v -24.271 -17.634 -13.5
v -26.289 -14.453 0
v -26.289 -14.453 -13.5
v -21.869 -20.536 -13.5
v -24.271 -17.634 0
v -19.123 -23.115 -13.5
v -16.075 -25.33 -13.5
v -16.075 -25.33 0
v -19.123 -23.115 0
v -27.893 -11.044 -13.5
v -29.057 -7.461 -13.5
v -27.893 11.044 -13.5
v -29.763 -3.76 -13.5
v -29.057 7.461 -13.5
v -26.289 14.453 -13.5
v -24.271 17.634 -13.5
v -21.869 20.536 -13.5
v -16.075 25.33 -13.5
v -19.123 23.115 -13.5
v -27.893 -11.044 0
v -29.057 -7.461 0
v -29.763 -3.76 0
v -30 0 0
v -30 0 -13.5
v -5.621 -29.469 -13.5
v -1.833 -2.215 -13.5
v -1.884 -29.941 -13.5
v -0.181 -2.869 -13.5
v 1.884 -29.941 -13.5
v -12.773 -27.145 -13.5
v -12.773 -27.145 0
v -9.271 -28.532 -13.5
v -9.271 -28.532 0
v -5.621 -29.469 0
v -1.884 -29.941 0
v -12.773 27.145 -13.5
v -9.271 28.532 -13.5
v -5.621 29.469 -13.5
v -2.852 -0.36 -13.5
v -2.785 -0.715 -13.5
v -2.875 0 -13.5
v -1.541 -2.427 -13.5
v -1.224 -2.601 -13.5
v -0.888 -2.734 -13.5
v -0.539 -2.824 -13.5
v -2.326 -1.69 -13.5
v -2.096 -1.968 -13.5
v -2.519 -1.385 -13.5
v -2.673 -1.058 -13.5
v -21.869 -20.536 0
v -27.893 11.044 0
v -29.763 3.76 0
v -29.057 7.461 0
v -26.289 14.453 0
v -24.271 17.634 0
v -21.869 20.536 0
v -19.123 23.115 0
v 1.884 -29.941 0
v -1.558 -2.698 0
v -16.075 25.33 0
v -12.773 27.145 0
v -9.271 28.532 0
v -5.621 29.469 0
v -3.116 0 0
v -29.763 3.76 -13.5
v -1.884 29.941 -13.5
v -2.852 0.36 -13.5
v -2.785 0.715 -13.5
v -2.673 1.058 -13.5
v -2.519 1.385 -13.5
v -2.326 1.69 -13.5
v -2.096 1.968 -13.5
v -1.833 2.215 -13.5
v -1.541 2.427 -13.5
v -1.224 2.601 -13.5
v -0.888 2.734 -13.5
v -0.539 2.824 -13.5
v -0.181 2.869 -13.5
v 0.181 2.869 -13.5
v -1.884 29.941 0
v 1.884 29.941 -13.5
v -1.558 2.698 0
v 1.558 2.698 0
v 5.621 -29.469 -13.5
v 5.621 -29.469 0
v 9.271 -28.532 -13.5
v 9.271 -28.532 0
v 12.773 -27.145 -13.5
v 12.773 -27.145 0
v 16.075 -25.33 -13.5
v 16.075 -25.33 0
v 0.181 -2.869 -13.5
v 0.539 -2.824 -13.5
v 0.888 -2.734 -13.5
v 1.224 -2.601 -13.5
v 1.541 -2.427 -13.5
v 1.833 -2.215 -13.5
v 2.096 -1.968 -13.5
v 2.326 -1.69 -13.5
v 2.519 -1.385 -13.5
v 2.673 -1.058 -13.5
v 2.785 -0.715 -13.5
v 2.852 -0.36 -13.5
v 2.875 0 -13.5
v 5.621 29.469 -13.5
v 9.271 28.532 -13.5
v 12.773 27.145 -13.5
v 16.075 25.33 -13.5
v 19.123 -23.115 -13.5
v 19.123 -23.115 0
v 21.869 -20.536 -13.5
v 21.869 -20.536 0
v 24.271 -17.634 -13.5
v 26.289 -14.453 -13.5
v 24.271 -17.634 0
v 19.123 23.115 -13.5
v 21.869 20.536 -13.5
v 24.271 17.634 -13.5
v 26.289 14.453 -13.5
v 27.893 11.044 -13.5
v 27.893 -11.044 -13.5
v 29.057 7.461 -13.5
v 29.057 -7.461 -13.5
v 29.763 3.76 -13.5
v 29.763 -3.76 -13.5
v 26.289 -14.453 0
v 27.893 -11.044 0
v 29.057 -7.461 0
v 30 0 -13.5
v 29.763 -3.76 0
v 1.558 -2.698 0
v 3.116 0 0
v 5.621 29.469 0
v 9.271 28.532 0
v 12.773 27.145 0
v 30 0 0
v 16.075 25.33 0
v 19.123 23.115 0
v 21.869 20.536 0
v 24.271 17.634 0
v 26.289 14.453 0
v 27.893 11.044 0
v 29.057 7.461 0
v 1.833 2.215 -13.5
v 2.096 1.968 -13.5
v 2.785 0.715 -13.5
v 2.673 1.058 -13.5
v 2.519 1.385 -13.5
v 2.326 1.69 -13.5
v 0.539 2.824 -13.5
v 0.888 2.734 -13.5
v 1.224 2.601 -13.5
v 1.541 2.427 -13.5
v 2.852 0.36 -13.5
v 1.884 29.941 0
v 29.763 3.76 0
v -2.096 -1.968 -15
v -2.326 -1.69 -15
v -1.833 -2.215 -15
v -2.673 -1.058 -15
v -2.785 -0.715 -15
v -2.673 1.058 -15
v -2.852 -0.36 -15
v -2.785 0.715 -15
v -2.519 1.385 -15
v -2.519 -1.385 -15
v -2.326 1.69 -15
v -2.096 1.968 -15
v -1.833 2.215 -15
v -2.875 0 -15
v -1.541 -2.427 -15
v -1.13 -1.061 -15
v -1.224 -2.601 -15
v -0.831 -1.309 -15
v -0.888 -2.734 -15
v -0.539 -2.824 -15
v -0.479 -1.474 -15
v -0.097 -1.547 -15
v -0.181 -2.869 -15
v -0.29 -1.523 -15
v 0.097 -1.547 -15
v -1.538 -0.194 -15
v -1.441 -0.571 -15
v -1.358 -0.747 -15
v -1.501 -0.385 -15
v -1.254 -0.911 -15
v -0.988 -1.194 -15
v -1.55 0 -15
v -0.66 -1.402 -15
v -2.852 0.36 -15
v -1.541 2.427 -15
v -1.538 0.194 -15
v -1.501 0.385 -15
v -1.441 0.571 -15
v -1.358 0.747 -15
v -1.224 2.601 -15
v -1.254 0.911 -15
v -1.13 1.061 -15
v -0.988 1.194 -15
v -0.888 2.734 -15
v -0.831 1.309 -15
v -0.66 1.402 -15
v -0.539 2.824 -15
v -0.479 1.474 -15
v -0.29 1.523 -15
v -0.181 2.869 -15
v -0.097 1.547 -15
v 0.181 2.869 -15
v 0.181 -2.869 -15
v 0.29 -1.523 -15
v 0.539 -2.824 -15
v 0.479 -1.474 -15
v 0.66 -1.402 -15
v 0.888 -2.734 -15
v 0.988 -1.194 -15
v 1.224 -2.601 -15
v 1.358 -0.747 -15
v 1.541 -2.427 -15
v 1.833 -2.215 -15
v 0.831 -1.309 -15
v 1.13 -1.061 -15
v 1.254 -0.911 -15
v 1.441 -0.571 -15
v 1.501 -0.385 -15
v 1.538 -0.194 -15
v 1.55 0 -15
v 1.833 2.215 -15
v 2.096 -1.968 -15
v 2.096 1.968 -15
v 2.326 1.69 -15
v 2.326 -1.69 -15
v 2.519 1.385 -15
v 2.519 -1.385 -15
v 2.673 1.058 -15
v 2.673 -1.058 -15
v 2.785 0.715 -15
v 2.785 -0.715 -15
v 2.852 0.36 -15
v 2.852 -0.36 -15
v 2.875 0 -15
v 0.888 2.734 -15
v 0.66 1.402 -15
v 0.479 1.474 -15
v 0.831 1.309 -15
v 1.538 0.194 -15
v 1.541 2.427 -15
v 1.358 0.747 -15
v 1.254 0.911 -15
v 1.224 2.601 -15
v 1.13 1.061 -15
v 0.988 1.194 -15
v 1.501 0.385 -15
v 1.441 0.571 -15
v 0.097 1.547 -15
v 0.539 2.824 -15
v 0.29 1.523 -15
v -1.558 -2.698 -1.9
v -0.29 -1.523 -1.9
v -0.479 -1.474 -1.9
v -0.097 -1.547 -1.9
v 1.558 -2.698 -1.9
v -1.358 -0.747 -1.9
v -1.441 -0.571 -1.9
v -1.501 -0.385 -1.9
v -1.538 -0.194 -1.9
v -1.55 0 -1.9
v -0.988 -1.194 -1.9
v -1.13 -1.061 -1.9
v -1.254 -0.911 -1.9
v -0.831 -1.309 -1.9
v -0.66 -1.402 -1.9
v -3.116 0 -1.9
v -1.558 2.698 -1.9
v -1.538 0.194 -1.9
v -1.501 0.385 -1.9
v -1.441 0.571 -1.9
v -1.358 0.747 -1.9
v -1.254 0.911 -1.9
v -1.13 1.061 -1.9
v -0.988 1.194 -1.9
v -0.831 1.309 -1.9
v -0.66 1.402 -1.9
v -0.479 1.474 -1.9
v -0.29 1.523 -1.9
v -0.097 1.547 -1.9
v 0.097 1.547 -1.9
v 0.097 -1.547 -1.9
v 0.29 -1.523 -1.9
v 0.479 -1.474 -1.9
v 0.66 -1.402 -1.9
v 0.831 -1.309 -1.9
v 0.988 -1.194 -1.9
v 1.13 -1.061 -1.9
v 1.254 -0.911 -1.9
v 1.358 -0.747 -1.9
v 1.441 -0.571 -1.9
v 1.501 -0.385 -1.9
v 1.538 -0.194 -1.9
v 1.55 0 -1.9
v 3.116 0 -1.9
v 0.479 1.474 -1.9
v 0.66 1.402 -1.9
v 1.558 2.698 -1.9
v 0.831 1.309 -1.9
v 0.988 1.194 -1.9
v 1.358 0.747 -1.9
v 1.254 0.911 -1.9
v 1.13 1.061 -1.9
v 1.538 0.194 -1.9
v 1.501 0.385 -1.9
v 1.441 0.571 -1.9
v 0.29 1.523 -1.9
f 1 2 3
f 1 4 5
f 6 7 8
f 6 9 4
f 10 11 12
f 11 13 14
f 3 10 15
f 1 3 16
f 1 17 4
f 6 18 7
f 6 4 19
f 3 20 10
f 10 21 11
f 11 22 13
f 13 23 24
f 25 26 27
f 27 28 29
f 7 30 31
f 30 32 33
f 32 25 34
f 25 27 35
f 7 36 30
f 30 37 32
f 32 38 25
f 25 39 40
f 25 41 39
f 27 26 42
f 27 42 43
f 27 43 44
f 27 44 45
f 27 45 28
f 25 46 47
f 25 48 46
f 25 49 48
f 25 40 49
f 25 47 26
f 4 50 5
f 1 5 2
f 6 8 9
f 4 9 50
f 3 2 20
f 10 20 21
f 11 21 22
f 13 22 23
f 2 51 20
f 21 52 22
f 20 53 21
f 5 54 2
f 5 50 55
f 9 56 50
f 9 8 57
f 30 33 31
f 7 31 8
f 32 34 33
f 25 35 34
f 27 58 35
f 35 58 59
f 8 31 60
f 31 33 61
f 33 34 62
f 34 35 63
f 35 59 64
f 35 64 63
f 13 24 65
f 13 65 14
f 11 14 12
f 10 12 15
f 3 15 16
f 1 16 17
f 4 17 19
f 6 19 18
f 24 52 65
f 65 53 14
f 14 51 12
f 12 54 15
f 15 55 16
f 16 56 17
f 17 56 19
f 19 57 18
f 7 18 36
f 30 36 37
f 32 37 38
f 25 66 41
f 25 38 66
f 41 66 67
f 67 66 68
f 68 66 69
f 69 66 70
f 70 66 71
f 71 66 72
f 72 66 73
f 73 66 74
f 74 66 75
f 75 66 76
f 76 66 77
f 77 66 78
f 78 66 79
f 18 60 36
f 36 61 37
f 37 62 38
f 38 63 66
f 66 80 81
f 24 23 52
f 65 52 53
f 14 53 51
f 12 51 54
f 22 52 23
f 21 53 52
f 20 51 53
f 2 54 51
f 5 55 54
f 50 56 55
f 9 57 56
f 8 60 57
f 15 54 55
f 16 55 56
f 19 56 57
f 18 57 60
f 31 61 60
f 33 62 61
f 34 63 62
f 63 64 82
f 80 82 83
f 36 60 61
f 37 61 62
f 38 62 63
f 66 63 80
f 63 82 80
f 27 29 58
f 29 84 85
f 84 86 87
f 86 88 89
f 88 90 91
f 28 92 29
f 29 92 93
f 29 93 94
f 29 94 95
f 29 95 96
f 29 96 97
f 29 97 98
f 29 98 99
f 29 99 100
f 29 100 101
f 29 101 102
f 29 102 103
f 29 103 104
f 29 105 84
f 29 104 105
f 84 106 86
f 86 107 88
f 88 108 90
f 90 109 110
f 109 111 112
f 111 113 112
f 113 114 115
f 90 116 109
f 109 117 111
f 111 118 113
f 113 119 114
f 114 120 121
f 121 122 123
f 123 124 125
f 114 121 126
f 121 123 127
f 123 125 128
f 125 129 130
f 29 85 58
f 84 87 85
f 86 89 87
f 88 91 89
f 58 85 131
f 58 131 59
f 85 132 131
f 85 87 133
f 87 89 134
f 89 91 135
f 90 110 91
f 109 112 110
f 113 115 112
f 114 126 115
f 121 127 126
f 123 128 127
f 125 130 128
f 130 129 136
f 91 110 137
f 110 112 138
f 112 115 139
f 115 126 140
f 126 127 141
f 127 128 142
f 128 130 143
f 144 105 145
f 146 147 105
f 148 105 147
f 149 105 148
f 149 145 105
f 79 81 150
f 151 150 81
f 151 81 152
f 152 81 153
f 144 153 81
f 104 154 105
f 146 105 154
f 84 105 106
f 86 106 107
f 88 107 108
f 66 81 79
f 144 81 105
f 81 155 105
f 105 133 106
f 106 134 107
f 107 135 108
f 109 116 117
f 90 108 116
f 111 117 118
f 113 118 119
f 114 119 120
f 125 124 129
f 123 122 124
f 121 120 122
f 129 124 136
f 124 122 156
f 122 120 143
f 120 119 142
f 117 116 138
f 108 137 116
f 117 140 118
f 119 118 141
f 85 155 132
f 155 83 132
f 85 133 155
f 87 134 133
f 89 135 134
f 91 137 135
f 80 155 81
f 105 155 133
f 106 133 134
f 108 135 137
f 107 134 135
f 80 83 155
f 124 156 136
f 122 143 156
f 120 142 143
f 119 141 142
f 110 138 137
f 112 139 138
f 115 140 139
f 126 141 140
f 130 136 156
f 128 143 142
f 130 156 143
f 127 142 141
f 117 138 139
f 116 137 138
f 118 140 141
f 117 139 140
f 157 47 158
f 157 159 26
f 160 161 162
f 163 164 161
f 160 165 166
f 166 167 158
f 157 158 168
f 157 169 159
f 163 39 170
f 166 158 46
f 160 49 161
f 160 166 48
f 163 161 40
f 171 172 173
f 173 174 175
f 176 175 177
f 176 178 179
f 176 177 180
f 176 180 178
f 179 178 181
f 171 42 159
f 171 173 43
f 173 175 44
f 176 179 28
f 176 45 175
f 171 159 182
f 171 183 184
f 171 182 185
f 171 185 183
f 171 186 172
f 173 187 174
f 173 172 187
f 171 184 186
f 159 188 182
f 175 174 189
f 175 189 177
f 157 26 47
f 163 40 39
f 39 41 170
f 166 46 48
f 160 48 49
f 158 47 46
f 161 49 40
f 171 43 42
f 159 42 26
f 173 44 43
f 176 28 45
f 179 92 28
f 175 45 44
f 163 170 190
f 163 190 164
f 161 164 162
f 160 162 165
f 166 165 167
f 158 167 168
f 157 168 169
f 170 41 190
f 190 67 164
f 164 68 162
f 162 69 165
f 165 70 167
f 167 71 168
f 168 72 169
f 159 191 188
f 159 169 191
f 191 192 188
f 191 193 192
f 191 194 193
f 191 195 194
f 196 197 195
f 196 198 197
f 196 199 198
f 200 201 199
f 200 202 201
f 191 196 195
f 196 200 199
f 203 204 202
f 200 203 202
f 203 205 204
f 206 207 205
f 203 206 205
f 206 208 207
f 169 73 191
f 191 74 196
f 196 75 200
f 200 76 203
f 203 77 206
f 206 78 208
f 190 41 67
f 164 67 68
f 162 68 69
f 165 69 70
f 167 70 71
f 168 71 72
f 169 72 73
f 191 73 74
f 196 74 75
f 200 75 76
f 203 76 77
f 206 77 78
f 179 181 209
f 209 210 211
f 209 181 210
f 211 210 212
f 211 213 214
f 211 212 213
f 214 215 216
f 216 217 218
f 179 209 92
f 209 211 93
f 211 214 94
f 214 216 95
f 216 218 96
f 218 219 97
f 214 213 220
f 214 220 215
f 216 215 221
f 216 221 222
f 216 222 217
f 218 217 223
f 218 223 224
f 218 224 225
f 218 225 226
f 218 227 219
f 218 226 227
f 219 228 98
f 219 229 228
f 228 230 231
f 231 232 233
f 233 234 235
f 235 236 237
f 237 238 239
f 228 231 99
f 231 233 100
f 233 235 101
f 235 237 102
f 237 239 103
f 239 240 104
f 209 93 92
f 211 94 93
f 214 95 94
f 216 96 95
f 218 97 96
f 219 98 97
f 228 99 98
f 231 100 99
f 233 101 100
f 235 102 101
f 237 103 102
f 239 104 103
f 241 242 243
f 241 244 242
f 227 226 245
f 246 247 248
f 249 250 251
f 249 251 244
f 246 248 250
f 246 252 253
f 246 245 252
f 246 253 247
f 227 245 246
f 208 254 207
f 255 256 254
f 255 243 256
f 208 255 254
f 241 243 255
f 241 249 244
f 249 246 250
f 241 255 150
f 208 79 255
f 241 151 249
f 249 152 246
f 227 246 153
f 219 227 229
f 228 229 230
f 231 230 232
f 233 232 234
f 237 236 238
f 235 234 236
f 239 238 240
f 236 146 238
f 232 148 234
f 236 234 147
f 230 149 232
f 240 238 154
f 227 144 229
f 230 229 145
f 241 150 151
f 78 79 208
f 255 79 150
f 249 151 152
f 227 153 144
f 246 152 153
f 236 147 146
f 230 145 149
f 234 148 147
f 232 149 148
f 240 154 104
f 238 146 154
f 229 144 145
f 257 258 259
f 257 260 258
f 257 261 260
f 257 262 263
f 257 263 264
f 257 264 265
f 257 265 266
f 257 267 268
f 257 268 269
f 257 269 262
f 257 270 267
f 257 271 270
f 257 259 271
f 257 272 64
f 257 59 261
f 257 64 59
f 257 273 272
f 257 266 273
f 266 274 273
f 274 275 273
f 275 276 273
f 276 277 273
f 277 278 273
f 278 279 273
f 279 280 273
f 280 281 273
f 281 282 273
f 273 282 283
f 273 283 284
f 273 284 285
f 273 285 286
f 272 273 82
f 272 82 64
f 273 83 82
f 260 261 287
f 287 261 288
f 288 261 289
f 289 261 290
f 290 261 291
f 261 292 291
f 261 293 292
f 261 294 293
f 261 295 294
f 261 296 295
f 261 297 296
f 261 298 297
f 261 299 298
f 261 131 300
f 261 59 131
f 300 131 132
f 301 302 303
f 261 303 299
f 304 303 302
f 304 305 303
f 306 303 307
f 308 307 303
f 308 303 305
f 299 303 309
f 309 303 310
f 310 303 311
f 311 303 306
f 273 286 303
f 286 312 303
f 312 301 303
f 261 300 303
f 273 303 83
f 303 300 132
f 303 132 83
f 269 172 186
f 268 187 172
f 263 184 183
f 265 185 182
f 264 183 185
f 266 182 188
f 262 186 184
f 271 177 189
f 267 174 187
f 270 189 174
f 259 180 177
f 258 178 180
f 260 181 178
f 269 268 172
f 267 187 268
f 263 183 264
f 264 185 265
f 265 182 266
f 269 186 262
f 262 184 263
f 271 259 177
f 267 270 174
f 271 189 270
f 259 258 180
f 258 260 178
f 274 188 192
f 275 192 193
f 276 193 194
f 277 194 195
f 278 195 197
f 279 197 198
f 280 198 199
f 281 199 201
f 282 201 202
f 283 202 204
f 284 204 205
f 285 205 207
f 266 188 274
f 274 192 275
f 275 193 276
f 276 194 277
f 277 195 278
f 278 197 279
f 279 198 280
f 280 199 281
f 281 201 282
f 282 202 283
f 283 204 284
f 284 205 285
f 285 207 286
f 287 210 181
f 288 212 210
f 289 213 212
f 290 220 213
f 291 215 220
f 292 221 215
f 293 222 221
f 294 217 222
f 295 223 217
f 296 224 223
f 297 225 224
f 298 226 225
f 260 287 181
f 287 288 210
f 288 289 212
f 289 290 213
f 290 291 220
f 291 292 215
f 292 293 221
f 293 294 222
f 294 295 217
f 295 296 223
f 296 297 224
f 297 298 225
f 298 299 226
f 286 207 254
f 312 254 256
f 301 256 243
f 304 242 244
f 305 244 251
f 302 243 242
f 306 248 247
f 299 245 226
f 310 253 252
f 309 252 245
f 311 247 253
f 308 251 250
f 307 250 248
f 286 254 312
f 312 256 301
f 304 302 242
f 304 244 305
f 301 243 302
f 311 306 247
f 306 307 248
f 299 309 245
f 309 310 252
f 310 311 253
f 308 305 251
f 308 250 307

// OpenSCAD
$fn = 50;


difference() {
	union() {
		translate(v = [0, 0, -13.5000000000]) {
			cylinder(h = 13.5000000000, r = 30.0000000000);
		}
		#translate(v = [0, 0, -15.0000000000]) {
			cylinder(h = 15, r = 2.8750000000);
		}
	}
	union() {
		translate(v = [0, 0, 0]) {
			rotate(a = [0, 0, 0]) {
				difference() {
					union() {
						translate(v = [0, 0, -1.9000000000]) {
							linear_extrude(height = 1.9000000000) {
								polygon(points = [[3.1158000000, 0.0000000000], [1.5579000000, 2.6983619531], [-1.5579000000, 2.6983619531], [-3.1158000000, 0.0000000000], [-1.5579000000, -2.6983619531], [1.5579000000, -2.6983619531]]);
							}
						}
					}
					union();
				}
			}
		}
		#translate(v = [0, 0, -100.0000000000]) {
			cylinder(h = 200, r = 1.5500000000);
		}
	}
}
